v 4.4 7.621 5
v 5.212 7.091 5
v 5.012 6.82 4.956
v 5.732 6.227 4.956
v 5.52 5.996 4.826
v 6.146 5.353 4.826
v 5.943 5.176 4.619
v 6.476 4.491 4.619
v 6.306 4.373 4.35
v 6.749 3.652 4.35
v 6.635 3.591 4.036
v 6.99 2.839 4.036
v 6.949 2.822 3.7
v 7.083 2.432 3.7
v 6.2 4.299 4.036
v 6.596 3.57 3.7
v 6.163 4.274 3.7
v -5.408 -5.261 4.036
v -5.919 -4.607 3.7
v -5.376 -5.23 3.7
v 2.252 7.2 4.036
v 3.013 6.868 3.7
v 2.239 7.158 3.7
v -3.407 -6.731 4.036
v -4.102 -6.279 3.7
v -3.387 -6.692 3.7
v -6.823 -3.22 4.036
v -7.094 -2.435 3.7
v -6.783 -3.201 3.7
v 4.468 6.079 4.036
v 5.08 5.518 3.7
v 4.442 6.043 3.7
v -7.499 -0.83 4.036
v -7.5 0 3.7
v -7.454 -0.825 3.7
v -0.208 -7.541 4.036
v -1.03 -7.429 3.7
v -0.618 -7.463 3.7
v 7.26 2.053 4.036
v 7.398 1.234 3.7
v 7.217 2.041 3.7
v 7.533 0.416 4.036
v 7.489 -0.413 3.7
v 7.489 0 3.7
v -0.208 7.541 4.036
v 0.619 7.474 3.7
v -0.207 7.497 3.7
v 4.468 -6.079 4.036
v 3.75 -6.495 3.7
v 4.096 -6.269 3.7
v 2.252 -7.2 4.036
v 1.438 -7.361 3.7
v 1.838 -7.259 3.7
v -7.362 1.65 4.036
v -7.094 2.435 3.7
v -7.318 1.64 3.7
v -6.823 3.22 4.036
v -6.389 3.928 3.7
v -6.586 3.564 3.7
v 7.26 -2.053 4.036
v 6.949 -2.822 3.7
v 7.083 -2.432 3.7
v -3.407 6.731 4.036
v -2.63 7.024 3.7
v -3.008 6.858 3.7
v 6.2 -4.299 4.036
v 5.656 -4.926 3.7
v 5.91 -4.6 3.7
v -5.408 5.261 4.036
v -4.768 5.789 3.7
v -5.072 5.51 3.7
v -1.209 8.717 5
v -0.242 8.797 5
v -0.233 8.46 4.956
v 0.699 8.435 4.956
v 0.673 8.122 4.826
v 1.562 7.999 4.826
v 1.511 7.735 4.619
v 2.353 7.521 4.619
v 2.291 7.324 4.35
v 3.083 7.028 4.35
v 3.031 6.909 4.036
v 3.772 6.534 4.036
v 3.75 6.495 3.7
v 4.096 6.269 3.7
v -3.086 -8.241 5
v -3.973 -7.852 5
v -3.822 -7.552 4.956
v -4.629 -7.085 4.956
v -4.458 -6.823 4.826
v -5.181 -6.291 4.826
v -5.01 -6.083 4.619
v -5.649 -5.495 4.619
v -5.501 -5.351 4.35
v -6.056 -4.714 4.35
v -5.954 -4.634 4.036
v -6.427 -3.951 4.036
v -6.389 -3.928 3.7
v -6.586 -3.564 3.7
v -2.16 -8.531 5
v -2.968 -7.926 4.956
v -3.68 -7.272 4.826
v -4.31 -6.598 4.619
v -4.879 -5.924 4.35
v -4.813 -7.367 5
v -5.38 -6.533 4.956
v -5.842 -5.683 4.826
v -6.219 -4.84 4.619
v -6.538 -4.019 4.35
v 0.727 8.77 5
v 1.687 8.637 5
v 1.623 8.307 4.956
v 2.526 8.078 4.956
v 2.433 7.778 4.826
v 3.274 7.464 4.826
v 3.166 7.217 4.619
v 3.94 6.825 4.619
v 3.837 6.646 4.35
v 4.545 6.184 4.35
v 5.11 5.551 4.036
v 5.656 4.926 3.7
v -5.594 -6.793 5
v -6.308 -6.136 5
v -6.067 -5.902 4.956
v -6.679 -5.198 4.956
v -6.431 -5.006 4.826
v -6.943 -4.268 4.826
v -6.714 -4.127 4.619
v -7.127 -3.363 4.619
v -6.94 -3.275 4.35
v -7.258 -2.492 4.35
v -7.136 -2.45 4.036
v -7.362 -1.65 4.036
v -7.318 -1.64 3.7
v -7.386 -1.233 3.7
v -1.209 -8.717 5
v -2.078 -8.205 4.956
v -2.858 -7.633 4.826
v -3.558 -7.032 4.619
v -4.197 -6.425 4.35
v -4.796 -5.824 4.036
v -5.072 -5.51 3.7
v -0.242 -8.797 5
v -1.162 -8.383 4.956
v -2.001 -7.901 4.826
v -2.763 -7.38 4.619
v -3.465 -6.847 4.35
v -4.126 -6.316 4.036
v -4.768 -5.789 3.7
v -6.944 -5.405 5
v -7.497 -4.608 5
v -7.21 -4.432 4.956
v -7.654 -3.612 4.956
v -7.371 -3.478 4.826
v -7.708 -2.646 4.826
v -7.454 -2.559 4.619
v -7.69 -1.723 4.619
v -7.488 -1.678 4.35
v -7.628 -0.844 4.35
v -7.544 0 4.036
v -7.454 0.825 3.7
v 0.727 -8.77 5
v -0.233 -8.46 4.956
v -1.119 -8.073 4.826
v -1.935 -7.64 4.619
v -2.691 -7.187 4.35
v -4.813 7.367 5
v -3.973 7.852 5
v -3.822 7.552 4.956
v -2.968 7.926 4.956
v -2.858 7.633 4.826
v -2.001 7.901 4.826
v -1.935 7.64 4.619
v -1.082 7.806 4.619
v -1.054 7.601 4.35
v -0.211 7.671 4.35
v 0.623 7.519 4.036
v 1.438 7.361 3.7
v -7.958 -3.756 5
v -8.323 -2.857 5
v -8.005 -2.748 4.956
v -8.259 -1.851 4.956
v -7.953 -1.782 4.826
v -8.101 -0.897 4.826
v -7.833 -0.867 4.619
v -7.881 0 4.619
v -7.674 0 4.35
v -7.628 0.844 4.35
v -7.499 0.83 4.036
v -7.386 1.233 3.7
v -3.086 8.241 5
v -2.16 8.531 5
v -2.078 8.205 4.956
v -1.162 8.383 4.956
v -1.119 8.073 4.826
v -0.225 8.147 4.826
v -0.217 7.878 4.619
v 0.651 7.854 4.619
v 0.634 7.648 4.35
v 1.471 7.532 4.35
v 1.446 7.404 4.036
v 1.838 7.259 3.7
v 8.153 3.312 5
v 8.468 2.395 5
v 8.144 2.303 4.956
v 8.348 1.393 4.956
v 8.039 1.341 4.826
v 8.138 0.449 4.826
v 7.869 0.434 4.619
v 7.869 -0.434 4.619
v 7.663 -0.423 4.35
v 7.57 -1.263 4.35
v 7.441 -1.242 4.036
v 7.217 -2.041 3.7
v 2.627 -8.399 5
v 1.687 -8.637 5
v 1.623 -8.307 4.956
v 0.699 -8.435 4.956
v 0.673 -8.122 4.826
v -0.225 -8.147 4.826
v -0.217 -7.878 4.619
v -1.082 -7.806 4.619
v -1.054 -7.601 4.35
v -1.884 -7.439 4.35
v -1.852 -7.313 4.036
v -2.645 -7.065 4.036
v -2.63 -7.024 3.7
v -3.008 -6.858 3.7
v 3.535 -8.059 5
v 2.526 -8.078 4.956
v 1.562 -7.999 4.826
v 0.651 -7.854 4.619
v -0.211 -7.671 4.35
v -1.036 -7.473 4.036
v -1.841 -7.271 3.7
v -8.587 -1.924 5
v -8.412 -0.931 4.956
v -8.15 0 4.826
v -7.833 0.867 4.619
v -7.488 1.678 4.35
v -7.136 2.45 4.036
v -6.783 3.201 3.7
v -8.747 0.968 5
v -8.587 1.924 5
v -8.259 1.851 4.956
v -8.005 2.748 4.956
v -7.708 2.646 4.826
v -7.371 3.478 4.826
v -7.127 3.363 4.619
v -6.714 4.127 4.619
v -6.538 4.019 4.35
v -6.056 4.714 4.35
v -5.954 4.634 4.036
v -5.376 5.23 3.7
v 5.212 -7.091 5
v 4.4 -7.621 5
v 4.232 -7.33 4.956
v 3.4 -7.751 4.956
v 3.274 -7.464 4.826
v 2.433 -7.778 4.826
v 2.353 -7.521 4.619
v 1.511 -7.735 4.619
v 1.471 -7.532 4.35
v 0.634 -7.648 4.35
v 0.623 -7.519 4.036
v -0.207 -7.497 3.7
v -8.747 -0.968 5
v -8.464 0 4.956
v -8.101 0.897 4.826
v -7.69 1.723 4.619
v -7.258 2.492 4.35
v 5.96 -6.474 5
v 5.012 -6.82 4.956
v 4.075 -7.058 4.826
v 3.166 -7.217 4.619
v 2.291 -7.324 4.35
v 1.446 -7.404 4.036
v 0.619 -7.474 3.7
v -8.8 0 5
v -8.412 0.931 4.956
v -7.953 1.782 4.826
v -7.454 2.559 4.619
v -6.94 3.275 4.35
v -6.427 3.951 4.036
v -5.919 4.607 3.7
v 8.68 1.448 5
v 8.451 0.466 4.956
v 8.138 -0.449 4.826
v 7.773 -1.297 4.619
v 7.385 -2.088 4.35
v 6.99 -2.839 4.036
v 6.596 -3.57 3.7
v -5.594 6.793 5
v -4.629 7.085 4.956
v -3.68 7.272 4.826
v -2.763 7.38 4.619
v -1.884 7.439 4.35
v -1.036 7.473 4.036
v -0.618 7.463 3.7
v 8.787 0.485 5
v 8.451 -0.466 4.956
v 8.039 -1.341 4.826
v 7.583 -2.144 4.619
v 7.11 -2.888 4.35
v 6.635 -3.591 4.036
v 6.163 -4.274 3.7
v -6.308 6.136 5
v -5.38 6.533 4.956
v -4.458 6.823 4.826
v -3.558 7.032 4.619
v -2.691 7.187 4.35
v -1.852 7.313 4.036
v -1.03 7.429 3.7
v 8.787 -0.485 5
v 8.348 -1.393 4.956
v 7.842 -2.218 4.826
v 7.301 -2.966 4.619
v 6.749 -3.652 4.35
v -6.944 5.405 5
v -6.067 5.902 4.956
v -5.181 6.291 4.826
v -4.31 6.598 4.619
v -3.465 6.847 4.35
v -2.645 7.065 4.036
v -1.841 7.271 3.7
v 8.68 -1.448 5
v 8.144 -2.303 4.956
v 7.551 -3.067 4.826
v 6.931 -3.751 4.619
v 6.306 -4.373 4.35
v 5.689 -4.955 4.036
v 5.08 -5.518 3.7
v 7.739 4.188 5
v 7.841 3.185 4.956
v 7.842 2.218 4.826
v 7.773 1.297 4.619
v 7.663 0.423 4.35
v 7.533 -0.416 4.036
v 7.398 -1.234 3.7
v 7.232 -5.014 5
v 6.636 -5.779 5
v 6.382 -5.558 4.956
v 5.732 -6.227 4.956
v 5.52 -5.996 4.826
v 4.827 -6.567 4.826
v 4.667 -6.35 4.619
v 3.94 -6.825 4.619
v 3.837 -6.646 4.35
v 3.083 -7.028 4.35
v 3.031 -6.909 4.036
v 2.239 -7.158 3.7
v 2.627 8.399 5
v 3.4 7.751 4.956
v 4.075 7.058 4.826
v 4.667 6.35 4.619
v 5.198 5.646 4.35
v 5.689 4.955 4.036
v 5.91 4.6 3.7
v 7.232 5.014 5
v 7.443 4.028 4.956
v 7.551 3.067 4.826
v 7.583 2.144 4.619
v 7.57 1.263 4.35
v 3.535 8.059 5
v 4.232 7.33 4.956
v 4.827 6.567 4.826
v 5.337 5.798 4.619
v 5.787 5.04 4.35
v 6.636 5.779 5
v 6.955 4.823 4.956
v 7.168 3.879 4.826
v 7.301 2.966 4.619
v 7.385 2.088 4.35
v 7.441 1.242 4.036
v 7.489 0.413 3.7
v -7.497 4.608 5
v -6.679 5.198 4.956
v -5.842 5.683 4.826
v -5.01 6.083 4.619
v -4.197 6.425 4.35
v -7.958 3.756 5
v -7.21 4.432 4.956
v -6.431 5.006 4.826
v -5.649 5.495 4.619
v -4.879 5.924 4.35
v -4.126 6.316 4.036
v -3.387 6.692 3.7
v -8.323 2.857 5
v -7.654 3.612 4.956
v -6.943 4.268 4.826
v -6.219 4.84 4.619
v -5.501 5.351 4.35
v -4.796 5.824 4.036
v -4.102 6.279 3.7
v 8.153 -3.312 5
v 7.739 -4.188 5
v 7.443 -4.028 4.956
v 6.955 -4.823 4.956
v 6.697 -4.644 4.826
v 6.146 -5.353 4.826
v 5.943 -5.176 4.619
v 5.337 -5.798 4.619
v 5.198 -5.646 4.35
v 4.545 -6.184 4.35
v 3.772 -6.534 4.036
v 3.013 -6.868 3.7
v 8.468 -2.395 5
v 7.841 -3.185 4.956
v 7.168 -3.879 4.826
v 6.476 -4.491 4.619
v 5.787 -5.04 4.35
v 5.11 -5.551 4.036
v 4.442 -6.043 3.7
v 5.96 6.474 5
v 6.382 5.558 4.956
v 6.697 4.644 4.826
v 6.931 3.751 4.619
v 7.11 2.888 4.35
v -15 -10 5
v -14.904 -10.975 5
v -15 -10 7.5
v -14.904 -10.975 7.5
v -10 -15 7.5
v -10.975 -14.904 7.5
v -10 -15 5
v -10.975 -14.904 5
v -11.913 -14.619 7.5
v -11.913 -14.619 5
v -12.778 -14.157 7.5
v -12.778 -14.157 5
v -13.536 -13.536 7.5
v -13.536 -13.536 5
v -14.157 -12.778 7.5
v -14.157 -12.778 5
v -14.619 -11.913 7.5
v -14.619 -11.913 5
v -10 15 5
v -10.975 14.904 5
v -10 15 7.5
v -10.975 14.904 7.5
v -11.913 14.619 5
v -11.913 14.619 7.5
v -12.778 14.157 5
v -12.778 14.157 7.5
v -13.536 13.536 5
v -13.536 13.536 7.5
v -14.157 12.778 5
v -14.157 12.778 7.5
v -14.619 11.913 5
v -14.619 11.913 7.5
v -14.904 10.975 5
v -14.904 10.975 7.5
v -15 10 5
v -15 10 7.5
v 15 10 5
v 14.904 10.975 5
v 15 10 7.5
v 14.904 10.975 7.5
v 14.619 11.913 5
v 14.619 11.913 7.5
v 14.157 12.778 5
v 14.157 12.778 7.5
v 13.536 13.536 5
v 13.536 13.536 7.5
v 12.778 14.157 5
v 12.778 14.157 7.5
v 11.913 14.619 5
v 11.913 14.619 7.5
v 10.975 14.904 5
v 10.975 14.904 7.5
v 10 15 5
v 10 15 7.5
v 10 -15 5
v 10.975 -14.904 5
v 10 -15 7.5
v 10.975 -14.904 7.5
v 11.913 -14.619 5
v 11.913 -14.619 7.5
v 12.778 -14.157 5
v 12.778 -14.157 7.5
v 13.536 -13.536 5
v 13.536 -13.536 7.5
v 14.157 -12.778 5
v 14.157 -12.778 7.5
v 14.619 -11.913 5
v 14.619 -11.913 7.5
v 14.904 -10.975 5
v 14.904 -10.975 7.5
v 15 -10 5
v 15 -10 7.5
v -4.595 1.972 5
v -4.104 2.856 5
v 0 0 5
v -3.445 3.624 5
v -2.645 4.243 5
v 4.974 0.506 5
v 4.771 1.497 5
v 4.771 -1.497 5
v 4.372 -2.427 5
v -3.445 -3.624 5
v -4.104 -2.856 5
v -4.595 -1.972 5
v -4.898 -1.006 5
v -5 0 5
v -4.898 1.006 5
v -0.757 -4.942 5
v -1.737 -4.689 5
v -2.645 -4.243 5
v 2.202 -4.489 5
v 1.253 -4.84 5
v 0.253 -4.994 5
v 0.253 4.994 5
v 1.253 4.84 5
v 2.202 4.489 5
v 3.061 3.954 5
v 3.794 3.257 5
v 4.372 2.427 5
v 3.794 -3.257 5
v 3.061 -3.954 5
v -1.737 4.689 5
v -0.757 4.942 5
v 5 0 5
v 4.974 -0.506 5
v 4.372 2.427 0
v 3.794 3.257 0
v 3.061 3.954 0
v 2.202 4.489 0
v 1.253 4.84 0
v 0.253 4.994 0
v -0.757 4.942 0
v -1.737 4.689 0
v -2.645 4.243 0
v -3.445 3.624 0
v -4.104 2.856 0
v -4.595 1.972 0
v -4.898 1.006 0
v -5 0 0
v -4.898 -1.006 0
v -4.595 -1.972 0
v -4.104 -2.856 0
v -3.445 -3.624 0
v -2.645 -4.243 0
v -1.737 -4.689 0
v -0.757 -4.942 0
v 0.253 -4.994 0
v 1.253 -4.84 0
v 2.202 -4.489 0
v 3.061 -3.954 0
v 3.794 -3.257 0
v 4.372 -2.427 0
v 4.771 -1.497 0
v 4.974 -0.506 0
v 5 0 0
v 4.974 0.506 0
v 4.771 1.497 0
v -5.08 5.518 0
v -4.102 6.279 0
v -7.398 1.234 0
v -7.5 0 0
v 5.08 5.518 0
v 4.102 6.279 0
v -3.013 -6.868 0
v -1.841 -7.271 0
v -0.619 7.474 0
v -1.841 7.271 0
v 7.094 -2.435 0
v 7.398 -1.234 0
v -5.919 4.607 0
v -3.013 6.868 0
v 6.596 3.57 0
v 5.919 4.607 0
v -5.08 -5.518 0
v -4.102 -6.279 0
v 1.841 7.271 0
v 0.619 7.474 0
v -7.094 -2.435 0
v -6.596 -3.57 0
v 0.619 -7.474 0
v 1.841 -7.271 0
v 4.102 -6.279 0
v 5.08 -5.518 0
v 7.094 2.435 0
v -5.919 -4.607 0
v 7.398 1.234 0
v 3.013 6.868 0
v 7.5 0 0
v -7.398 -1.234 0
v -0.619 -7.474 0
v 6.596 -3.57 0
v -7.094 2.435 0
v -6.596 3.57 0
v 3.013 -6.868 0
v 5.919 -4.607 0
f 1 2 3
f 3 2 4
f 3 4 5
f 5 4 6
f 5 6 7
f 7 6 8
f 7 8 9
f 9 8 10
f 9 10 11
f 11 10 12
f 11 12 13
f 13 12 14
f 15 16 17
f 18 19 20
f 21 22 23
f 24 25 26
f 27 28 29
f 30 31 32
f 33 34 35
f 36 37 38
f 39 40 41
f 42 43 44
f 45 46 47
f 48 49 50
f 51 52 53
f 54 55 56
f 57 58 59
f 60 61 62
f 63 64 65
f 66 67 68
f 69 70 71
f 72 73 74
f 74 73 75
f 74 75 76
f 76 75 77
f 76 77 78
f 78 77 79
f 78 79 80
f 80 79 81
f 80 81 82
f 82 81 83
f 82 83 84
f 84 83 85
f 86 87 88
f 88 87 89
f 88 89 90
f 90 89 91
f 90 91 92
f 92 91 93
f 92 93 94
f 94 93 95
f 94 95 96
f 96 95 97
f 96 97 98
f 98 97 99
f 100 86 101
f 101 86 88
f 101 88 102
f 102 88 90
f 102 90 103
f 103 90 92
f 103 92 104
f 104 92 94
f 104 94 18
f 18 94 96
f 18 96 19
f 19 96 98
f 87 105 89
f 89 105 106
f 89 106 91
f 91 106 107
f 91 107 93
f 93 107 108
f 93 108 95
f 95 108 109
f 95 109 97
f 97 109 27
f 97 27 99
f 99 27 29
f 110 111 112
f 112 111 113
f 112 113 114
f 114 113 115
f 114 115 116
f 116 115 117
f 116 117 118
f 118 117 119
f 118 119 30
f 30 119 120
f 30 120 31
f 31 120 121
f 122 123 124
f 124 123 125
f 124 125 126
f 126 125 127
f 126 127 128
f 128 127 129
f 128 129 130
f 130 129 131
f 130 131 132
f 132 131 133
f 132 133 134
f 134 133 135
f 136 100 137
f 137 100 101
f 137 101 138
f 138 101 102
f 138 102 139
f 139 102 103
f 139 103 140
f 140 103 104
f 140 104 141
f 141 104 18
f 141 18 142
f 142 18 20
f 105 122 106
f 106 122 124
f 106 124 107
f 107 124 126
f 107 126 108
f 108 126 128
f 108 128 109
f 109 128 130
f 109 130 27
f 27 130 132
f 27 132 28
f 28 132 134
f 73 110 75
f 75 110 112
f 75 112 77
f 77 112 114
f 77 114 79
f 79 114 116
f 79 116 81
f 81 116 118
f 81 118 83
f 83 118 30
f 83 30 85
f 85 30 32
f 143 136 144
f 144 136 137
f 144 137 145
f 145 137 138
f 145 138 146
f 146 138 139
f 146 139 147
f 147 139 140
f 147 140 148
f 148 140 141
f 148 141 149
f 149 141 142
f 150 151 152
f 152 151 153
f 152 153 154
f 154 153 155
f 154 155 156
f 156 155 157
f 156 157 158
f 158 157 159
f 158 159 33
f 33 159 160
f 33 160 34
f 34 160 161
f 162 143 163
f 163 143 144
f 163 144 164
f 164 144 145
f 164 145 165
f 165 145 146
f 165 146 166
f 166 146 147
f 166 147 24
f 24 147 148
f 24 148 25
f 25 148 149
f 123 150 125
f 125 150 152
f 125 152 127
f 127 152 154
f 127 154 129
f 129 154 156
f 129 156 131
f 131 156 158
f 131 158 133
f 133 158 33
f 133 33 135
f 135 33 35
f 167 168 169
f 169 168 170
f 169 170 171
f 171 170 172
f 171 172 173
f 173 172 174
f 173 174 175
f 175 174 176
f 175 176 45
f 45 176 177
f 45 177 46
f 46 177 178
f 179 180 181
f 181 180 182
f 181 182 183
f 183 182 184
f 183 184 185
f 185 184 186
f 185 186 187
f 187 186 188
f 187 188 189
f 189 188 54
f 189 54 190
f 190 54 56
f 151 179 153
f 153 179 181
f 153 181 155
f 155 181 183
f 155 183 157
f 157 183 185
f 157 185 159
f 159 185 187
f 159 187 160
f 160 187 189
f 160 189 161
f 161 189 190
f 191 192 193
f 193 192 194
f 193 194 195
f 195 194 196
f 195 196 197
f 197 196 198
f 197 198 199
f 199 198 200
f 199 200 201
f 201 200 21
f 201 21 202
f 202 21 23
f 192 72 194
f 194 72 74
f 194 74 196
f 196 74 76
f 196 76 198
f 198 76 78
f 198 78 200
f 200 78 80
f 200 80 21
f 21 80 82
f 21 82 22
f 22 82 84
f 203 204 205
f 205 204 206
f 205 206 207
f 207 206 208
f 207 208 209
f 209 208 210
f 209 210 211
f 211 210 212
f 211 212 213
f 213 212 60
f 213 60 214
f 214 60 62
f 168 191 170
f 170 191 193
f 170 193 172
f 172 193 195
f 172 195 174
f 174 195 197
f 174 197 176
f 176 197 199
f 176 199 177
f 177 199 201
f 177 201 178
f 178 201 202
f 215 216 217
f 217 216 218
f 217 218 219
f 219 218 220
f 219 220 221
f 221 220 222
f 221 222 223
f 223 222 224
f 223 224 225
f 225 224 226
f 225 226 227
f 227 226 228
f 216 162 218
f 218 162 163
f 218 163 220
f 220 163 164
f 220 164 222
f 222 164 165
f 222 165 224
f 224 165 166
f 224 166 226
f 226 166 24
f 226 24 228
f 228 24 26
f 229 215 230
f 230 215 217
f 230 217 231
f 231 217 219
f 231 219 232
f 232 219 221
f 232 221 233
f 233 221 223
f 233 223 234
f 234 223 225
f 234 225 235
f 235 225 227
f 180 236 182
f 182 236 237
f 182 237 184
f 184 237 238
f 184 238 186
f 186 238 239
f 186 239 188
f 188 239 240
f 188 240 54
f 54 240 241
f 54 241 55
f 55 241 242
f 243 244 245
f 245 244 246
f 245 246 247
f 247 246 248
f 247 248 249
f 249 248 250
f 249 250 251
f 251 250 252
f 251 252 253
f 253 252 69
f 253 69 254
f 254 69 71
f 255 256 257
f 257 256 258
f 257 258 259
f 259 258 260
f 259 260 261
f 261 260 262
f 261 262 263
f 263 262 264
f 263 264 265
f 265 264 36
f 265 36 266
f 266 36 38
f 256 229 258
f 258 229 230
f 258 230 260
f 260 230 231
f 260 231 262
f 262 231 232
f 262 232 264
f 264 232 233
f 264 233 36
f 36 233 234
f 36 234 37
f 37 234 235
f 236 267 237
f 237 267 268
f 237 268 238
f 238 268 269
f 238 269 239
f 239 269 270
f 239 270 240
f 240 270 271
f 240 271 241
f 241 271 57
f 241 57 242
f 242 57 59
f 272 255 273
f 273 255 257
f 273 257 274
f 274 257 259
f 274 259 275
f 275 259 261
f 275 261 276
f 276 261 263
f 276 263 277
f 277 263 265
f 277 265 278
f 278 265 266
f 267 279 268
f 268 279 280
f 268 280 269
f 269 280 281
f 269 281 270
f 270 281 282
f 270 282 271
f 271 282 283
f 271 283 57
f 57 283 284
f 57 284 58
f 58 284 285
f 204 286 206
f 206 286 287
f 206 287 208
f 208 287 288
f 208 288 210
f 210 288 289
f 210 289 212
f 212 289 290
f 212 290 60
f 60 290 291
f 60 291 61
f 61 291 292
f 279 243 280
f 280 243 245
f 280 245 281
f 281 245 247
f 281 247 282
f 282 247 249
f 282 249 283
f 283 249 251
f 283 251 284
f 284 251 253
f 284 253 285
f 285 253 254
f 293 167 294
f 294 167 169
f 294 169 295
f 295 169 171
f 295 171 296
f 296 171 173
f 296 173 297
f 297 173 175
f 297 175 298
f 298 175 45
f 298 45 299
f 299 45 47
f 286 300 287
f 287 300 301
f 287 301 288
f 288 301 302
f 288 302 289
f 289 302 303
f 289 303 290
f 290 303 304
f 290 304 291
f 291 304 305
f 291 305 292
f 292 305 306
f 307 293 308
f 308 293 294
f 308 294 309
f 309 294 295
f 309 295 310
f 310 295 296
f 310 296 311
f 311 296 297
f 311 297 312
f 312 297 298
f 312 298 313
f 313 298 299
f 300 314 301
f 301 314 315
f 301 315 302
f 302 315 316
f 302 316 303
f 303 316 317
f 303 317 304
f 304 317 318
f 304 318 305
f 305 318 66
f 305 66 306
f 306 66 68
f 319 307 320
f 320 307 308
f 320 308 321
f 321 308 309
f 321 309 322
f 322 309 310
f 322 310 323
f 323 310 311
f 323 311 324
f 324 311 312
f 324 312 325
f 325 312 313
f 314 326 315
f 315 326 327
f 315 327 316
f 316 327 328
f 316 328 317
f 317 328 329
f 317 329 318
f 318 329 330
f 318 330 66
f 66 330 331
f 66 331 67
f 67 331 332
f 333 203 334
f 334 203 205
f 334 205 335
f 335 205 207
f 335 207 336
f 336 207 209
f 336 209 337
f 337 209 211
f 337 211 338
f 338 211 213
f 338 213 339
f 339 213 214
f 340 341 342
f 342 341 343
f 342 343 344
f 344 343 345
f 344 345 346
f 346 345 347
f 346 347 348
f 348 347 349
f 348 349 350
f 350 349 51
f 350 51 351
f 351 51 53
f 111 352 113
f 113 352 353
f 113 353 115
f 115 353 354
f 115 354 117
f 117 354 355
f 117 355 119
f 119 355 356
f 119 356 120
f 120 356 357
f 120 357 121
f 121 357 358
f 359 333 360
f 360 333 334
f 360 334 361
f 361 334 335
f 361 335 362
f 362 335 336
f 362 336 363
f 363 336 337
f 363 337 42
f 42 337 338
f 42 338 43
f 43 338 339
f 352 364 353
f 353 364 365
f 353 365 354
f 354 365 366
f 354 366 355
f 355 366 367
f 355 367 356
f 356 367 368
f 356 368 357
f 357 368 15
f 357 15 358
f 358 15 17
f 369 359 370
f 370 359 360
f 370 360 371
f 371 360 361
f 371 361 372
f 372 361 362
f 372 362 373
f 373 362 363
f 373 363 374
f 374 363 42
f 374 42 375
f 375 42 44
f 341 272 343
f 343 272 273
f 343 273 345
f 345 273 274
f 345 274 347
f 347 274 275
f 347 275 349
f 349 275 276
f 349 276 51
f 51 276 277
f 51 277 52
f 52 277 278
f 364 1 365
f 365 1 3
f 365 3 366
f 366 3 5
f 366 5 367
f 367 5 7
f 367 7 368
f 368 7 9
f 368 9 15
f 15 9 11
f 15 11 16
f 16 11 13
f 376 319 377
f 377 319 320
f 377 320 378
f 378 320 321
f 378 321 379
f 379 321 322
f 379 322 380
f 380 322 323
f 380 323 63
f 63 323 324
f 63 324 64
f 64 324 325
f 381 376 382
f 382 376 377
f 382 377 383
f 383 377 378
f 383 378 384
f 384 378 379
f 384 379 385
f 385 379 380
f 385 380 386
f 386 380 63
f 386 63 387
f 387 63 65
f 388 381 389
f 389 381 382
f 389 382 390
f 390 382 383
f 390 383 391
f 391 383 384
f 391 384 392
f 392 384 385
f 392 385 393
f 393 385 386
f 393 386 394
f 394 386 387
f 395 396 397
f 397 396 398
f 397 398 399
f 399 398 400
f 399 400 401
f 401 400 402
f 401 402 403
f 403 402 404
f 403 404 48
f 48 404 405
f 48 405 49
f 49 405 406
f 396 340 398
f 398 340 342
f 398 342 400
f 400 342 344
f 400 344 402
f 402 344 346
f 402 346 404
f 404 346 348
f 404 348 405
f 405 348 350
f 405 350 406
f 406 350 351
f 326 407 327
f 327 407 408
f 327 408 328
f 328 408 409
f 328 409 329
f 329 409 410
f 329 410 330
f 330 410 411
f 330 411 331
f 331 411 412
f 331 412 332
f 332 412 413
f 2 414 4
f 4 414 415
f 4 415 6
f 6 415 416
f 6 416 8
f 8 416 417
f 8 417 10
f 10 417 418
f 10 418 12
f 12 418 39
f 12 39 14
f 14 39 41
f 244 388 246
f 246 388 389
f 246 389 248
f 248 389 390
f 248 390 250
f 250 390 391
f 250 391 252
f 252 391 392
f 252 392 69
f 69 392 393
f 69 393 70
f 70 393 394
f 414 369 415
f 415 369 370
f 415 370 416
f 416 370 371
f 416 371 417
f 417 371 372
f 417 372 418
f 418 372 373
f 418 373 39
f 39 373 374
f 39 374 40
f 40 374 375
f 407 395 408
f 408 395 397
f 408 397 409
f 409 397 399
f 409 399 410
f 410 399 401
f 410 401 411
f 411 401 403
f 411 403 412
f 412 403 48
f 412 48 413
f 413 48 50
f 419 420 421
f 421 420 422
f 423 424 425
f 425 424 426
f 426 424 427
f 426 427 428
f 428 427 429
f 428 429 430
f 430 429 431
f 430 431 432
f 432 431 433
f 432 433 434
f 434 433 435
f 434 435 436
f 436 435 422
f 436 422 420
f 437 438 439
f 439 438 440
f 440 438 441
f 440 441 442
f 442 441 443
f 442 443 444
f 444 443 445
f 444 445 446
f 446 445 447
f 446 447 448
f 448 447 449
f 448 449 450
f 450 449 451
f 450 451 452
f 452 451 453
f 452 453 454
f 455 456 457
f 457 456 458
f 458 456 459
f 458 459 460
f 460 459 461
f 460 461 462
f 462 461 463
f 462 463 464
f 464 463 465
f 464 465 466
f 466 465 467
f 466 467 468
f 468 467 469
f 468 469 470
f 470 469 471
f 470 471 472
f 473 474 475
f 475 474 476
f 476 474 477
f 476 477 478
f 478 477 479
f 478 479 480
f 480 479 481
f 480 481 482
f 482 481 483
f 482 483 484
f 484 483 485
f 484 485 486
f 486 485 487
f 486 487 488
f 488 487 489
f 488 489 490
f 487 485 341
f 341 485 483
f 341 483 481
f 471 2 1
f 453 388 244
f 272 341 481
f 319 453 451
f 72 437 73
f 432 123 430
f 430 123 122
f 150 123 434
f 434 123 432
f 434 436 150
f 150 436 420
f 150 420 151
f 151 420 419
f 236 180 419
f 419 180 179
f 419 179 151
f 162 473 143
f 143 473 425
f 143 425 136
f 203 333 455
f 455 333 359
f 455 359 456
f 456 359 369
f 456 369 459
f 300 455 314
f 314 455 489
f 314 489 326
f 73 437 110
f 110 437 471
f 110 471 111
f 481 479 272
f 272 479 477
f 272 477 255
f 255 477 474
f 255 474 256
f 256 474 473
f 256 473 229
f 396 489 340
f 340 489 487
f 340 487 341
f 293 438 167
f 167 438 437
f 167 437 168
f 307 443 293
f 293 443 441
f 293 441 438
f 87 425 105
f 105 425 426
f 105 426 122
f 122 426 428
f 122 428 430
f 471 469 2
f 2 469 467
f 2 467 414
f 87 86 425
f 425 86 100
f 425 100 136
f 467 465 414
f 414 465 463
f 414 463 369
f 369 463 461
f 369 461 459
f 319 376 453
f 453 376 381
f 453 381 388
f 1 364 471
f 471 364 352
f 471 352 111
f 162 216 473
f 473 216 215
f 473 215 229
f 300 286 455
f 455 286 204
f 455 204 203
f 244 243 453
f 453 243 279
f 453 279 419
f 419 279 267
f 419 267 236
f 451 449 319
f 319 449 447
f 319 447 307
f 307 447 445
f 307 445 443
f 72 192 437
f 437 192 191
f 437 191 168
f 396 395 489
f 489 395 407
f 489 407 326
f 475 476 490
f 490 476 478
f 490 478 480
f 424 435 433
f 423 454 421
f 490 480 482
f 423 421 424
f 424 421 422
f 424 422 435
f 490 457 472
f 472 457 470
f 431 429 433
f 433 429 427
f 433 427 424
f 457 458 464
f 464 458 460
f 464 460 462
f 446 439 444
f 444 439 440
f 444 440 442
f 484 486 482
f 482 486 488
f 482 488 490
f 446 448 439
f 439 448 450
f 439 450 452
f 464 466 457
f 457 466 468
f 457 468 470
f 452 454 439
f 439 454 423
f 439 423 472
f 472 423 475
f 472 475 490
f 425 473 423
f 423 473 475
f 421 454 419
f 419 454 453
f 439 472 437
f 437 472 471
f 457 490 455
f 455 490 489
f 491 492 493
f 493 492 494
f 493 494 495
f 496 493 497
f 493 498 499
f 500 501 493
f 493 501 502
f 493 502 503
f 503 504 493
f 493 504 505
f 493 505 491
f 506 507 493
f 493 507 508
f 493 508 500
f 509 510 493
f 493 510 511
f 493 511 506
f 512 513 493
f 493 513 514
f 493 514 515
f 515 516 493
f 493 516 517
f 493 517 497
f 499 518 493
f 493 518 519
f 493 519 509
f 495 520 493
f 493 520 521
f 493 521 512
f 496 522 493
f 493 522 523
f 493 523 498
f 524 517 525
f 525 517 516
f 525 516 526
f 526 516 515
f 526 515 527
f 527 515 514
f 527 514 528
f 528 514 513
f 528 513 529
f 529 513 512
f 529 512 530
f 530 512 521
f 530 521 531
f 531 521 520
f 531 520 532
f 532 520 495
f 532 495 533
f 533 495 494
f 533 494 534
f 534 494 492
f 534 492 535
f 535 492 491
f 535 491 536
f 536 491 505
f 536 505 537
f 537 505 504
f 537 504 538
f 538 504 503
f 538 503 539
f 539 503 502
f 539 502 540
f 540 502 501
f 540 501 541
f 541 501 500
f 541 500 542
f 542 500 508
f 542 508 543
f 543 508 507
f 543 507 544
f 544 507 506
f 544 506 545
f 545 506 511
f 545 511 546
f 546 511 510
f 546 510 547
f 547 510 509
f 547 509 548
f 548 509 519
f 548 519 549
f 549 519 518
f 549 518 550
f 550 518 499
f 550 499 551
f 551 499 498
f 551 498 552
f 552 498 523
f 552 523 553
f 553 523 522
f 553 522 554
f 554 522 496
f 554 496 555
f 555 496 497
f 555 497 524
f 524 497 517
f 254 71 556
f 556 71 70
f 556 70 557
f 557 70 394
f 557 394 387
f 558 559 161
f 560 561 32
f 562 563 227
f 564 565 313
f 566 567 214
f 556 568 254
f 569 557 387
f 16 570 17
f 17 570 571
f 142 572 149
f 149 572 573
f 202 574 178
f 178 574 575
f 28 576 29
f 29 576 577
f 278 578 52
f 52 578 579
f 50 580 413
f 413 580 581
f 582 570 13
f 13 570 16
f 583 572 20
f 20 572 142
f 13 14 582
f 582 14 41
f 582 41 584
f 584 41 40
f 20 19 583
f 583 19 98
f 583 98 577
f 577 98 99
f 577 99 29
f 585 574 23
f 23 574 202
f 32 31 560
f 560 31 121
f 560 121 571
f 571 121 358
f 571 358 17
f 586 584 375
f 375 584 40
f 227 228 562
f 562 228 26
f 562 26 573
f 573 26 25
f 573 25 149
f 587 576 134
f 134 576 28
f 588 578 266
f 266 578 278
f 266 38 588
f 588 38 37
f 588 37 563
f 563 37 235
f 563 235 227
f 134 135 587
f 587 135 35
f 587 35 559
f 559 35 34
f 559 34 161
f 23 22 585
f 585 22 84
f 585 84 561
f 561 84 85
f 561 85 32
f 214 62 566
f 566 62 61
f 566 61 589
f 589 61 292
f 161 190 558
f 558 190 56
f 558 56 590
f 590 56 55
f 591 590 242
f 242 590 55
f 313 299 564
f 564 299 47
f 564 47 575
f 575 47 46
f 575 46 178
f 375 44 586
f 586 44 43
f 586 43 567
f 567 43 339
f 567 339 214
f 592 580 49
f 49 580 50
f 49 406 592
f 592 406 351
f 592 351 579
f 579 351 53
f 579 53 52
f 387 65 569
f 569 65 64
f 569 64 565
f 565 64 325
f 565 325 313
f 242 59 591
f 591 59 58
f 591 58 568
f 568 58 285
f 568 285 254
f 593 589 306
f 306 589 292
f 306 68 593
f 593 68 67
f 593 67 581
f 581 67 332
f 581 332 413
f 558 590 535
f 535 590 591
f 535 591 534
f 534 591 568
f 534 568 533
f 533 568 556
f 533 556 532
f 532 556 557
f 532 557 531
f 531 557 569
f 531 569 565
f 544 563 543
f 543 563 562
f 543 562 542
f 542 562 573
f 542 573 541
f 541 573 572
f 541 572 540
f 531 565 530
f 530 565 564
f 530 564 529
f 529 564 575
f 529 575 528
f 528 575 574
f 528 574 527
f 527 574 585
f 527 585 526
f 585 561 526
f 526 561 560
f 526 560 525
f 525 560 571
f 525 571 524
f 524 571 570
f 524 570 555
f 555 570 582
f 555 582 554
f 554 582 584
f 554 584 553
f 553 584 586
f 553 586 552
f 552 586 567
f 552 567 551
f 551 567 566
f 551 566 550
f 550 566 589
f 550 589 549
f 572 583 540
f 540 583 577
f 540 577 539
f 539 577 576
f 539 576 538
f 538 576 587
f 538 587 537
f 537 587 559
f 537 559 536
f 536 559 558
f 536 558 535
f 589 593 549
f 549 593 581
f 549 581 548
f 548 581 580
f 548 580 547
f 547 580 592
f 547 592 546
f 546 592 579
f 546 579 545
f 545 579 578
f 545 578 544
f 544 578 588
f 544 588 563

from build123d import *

# Parameters (mm, degrees)
SKETCH1_R           = 7.5
SKETCH1_R_2         = 5
BOSS_EXTRUDE1_DEPTH = 5
SKETCH2_W           = 30
SKETCH2_H           = 30
BOSS_EXTRUDE2_DEPTH = 2.5
FILLET1_R           = 5
FILLET2_R           = 1.3


with BuildPart() as part:
    # Sketch1 → Boss-Extrude1 (new body)
    with BuildSketch(Plane.XY):
        Circle(SKETCH1_R)
        Circle(SKETCH1_R_2, mode=Mode.SUBTRACT)
    extrude(amount=BOSS_EXTRUDE1_DEPTH)

    # Sketch2 → Boss-Extrude2 (add)
    with BuildSketch(Plane.XY.offset(5)):
        Rectangle(SKETCH2_W, SKETCH2_H)
    extrude(amount=BOSS_EXTRUDE2_DEPTH)

    # Fillet1
    fillet1_edges = [part.edges().sort_by_distance(p)[0] for p in [
        (15, -15, 6.25),
        (15, 15, 6.25),
        (-15, 15, 6.25),
        (-15, -15, 6.25),
    ]]
    fillet(fillet1_edges, radius=FILLET1_R)

    # Fillet2
    fillet2_edges = [part.edges().sort_by_distance(p)[0] for p in [
        (-7.5, 0, 5),
    ]]
    fillet(fillet2_edges, radius=FILLET2_R)


solid = part.part
